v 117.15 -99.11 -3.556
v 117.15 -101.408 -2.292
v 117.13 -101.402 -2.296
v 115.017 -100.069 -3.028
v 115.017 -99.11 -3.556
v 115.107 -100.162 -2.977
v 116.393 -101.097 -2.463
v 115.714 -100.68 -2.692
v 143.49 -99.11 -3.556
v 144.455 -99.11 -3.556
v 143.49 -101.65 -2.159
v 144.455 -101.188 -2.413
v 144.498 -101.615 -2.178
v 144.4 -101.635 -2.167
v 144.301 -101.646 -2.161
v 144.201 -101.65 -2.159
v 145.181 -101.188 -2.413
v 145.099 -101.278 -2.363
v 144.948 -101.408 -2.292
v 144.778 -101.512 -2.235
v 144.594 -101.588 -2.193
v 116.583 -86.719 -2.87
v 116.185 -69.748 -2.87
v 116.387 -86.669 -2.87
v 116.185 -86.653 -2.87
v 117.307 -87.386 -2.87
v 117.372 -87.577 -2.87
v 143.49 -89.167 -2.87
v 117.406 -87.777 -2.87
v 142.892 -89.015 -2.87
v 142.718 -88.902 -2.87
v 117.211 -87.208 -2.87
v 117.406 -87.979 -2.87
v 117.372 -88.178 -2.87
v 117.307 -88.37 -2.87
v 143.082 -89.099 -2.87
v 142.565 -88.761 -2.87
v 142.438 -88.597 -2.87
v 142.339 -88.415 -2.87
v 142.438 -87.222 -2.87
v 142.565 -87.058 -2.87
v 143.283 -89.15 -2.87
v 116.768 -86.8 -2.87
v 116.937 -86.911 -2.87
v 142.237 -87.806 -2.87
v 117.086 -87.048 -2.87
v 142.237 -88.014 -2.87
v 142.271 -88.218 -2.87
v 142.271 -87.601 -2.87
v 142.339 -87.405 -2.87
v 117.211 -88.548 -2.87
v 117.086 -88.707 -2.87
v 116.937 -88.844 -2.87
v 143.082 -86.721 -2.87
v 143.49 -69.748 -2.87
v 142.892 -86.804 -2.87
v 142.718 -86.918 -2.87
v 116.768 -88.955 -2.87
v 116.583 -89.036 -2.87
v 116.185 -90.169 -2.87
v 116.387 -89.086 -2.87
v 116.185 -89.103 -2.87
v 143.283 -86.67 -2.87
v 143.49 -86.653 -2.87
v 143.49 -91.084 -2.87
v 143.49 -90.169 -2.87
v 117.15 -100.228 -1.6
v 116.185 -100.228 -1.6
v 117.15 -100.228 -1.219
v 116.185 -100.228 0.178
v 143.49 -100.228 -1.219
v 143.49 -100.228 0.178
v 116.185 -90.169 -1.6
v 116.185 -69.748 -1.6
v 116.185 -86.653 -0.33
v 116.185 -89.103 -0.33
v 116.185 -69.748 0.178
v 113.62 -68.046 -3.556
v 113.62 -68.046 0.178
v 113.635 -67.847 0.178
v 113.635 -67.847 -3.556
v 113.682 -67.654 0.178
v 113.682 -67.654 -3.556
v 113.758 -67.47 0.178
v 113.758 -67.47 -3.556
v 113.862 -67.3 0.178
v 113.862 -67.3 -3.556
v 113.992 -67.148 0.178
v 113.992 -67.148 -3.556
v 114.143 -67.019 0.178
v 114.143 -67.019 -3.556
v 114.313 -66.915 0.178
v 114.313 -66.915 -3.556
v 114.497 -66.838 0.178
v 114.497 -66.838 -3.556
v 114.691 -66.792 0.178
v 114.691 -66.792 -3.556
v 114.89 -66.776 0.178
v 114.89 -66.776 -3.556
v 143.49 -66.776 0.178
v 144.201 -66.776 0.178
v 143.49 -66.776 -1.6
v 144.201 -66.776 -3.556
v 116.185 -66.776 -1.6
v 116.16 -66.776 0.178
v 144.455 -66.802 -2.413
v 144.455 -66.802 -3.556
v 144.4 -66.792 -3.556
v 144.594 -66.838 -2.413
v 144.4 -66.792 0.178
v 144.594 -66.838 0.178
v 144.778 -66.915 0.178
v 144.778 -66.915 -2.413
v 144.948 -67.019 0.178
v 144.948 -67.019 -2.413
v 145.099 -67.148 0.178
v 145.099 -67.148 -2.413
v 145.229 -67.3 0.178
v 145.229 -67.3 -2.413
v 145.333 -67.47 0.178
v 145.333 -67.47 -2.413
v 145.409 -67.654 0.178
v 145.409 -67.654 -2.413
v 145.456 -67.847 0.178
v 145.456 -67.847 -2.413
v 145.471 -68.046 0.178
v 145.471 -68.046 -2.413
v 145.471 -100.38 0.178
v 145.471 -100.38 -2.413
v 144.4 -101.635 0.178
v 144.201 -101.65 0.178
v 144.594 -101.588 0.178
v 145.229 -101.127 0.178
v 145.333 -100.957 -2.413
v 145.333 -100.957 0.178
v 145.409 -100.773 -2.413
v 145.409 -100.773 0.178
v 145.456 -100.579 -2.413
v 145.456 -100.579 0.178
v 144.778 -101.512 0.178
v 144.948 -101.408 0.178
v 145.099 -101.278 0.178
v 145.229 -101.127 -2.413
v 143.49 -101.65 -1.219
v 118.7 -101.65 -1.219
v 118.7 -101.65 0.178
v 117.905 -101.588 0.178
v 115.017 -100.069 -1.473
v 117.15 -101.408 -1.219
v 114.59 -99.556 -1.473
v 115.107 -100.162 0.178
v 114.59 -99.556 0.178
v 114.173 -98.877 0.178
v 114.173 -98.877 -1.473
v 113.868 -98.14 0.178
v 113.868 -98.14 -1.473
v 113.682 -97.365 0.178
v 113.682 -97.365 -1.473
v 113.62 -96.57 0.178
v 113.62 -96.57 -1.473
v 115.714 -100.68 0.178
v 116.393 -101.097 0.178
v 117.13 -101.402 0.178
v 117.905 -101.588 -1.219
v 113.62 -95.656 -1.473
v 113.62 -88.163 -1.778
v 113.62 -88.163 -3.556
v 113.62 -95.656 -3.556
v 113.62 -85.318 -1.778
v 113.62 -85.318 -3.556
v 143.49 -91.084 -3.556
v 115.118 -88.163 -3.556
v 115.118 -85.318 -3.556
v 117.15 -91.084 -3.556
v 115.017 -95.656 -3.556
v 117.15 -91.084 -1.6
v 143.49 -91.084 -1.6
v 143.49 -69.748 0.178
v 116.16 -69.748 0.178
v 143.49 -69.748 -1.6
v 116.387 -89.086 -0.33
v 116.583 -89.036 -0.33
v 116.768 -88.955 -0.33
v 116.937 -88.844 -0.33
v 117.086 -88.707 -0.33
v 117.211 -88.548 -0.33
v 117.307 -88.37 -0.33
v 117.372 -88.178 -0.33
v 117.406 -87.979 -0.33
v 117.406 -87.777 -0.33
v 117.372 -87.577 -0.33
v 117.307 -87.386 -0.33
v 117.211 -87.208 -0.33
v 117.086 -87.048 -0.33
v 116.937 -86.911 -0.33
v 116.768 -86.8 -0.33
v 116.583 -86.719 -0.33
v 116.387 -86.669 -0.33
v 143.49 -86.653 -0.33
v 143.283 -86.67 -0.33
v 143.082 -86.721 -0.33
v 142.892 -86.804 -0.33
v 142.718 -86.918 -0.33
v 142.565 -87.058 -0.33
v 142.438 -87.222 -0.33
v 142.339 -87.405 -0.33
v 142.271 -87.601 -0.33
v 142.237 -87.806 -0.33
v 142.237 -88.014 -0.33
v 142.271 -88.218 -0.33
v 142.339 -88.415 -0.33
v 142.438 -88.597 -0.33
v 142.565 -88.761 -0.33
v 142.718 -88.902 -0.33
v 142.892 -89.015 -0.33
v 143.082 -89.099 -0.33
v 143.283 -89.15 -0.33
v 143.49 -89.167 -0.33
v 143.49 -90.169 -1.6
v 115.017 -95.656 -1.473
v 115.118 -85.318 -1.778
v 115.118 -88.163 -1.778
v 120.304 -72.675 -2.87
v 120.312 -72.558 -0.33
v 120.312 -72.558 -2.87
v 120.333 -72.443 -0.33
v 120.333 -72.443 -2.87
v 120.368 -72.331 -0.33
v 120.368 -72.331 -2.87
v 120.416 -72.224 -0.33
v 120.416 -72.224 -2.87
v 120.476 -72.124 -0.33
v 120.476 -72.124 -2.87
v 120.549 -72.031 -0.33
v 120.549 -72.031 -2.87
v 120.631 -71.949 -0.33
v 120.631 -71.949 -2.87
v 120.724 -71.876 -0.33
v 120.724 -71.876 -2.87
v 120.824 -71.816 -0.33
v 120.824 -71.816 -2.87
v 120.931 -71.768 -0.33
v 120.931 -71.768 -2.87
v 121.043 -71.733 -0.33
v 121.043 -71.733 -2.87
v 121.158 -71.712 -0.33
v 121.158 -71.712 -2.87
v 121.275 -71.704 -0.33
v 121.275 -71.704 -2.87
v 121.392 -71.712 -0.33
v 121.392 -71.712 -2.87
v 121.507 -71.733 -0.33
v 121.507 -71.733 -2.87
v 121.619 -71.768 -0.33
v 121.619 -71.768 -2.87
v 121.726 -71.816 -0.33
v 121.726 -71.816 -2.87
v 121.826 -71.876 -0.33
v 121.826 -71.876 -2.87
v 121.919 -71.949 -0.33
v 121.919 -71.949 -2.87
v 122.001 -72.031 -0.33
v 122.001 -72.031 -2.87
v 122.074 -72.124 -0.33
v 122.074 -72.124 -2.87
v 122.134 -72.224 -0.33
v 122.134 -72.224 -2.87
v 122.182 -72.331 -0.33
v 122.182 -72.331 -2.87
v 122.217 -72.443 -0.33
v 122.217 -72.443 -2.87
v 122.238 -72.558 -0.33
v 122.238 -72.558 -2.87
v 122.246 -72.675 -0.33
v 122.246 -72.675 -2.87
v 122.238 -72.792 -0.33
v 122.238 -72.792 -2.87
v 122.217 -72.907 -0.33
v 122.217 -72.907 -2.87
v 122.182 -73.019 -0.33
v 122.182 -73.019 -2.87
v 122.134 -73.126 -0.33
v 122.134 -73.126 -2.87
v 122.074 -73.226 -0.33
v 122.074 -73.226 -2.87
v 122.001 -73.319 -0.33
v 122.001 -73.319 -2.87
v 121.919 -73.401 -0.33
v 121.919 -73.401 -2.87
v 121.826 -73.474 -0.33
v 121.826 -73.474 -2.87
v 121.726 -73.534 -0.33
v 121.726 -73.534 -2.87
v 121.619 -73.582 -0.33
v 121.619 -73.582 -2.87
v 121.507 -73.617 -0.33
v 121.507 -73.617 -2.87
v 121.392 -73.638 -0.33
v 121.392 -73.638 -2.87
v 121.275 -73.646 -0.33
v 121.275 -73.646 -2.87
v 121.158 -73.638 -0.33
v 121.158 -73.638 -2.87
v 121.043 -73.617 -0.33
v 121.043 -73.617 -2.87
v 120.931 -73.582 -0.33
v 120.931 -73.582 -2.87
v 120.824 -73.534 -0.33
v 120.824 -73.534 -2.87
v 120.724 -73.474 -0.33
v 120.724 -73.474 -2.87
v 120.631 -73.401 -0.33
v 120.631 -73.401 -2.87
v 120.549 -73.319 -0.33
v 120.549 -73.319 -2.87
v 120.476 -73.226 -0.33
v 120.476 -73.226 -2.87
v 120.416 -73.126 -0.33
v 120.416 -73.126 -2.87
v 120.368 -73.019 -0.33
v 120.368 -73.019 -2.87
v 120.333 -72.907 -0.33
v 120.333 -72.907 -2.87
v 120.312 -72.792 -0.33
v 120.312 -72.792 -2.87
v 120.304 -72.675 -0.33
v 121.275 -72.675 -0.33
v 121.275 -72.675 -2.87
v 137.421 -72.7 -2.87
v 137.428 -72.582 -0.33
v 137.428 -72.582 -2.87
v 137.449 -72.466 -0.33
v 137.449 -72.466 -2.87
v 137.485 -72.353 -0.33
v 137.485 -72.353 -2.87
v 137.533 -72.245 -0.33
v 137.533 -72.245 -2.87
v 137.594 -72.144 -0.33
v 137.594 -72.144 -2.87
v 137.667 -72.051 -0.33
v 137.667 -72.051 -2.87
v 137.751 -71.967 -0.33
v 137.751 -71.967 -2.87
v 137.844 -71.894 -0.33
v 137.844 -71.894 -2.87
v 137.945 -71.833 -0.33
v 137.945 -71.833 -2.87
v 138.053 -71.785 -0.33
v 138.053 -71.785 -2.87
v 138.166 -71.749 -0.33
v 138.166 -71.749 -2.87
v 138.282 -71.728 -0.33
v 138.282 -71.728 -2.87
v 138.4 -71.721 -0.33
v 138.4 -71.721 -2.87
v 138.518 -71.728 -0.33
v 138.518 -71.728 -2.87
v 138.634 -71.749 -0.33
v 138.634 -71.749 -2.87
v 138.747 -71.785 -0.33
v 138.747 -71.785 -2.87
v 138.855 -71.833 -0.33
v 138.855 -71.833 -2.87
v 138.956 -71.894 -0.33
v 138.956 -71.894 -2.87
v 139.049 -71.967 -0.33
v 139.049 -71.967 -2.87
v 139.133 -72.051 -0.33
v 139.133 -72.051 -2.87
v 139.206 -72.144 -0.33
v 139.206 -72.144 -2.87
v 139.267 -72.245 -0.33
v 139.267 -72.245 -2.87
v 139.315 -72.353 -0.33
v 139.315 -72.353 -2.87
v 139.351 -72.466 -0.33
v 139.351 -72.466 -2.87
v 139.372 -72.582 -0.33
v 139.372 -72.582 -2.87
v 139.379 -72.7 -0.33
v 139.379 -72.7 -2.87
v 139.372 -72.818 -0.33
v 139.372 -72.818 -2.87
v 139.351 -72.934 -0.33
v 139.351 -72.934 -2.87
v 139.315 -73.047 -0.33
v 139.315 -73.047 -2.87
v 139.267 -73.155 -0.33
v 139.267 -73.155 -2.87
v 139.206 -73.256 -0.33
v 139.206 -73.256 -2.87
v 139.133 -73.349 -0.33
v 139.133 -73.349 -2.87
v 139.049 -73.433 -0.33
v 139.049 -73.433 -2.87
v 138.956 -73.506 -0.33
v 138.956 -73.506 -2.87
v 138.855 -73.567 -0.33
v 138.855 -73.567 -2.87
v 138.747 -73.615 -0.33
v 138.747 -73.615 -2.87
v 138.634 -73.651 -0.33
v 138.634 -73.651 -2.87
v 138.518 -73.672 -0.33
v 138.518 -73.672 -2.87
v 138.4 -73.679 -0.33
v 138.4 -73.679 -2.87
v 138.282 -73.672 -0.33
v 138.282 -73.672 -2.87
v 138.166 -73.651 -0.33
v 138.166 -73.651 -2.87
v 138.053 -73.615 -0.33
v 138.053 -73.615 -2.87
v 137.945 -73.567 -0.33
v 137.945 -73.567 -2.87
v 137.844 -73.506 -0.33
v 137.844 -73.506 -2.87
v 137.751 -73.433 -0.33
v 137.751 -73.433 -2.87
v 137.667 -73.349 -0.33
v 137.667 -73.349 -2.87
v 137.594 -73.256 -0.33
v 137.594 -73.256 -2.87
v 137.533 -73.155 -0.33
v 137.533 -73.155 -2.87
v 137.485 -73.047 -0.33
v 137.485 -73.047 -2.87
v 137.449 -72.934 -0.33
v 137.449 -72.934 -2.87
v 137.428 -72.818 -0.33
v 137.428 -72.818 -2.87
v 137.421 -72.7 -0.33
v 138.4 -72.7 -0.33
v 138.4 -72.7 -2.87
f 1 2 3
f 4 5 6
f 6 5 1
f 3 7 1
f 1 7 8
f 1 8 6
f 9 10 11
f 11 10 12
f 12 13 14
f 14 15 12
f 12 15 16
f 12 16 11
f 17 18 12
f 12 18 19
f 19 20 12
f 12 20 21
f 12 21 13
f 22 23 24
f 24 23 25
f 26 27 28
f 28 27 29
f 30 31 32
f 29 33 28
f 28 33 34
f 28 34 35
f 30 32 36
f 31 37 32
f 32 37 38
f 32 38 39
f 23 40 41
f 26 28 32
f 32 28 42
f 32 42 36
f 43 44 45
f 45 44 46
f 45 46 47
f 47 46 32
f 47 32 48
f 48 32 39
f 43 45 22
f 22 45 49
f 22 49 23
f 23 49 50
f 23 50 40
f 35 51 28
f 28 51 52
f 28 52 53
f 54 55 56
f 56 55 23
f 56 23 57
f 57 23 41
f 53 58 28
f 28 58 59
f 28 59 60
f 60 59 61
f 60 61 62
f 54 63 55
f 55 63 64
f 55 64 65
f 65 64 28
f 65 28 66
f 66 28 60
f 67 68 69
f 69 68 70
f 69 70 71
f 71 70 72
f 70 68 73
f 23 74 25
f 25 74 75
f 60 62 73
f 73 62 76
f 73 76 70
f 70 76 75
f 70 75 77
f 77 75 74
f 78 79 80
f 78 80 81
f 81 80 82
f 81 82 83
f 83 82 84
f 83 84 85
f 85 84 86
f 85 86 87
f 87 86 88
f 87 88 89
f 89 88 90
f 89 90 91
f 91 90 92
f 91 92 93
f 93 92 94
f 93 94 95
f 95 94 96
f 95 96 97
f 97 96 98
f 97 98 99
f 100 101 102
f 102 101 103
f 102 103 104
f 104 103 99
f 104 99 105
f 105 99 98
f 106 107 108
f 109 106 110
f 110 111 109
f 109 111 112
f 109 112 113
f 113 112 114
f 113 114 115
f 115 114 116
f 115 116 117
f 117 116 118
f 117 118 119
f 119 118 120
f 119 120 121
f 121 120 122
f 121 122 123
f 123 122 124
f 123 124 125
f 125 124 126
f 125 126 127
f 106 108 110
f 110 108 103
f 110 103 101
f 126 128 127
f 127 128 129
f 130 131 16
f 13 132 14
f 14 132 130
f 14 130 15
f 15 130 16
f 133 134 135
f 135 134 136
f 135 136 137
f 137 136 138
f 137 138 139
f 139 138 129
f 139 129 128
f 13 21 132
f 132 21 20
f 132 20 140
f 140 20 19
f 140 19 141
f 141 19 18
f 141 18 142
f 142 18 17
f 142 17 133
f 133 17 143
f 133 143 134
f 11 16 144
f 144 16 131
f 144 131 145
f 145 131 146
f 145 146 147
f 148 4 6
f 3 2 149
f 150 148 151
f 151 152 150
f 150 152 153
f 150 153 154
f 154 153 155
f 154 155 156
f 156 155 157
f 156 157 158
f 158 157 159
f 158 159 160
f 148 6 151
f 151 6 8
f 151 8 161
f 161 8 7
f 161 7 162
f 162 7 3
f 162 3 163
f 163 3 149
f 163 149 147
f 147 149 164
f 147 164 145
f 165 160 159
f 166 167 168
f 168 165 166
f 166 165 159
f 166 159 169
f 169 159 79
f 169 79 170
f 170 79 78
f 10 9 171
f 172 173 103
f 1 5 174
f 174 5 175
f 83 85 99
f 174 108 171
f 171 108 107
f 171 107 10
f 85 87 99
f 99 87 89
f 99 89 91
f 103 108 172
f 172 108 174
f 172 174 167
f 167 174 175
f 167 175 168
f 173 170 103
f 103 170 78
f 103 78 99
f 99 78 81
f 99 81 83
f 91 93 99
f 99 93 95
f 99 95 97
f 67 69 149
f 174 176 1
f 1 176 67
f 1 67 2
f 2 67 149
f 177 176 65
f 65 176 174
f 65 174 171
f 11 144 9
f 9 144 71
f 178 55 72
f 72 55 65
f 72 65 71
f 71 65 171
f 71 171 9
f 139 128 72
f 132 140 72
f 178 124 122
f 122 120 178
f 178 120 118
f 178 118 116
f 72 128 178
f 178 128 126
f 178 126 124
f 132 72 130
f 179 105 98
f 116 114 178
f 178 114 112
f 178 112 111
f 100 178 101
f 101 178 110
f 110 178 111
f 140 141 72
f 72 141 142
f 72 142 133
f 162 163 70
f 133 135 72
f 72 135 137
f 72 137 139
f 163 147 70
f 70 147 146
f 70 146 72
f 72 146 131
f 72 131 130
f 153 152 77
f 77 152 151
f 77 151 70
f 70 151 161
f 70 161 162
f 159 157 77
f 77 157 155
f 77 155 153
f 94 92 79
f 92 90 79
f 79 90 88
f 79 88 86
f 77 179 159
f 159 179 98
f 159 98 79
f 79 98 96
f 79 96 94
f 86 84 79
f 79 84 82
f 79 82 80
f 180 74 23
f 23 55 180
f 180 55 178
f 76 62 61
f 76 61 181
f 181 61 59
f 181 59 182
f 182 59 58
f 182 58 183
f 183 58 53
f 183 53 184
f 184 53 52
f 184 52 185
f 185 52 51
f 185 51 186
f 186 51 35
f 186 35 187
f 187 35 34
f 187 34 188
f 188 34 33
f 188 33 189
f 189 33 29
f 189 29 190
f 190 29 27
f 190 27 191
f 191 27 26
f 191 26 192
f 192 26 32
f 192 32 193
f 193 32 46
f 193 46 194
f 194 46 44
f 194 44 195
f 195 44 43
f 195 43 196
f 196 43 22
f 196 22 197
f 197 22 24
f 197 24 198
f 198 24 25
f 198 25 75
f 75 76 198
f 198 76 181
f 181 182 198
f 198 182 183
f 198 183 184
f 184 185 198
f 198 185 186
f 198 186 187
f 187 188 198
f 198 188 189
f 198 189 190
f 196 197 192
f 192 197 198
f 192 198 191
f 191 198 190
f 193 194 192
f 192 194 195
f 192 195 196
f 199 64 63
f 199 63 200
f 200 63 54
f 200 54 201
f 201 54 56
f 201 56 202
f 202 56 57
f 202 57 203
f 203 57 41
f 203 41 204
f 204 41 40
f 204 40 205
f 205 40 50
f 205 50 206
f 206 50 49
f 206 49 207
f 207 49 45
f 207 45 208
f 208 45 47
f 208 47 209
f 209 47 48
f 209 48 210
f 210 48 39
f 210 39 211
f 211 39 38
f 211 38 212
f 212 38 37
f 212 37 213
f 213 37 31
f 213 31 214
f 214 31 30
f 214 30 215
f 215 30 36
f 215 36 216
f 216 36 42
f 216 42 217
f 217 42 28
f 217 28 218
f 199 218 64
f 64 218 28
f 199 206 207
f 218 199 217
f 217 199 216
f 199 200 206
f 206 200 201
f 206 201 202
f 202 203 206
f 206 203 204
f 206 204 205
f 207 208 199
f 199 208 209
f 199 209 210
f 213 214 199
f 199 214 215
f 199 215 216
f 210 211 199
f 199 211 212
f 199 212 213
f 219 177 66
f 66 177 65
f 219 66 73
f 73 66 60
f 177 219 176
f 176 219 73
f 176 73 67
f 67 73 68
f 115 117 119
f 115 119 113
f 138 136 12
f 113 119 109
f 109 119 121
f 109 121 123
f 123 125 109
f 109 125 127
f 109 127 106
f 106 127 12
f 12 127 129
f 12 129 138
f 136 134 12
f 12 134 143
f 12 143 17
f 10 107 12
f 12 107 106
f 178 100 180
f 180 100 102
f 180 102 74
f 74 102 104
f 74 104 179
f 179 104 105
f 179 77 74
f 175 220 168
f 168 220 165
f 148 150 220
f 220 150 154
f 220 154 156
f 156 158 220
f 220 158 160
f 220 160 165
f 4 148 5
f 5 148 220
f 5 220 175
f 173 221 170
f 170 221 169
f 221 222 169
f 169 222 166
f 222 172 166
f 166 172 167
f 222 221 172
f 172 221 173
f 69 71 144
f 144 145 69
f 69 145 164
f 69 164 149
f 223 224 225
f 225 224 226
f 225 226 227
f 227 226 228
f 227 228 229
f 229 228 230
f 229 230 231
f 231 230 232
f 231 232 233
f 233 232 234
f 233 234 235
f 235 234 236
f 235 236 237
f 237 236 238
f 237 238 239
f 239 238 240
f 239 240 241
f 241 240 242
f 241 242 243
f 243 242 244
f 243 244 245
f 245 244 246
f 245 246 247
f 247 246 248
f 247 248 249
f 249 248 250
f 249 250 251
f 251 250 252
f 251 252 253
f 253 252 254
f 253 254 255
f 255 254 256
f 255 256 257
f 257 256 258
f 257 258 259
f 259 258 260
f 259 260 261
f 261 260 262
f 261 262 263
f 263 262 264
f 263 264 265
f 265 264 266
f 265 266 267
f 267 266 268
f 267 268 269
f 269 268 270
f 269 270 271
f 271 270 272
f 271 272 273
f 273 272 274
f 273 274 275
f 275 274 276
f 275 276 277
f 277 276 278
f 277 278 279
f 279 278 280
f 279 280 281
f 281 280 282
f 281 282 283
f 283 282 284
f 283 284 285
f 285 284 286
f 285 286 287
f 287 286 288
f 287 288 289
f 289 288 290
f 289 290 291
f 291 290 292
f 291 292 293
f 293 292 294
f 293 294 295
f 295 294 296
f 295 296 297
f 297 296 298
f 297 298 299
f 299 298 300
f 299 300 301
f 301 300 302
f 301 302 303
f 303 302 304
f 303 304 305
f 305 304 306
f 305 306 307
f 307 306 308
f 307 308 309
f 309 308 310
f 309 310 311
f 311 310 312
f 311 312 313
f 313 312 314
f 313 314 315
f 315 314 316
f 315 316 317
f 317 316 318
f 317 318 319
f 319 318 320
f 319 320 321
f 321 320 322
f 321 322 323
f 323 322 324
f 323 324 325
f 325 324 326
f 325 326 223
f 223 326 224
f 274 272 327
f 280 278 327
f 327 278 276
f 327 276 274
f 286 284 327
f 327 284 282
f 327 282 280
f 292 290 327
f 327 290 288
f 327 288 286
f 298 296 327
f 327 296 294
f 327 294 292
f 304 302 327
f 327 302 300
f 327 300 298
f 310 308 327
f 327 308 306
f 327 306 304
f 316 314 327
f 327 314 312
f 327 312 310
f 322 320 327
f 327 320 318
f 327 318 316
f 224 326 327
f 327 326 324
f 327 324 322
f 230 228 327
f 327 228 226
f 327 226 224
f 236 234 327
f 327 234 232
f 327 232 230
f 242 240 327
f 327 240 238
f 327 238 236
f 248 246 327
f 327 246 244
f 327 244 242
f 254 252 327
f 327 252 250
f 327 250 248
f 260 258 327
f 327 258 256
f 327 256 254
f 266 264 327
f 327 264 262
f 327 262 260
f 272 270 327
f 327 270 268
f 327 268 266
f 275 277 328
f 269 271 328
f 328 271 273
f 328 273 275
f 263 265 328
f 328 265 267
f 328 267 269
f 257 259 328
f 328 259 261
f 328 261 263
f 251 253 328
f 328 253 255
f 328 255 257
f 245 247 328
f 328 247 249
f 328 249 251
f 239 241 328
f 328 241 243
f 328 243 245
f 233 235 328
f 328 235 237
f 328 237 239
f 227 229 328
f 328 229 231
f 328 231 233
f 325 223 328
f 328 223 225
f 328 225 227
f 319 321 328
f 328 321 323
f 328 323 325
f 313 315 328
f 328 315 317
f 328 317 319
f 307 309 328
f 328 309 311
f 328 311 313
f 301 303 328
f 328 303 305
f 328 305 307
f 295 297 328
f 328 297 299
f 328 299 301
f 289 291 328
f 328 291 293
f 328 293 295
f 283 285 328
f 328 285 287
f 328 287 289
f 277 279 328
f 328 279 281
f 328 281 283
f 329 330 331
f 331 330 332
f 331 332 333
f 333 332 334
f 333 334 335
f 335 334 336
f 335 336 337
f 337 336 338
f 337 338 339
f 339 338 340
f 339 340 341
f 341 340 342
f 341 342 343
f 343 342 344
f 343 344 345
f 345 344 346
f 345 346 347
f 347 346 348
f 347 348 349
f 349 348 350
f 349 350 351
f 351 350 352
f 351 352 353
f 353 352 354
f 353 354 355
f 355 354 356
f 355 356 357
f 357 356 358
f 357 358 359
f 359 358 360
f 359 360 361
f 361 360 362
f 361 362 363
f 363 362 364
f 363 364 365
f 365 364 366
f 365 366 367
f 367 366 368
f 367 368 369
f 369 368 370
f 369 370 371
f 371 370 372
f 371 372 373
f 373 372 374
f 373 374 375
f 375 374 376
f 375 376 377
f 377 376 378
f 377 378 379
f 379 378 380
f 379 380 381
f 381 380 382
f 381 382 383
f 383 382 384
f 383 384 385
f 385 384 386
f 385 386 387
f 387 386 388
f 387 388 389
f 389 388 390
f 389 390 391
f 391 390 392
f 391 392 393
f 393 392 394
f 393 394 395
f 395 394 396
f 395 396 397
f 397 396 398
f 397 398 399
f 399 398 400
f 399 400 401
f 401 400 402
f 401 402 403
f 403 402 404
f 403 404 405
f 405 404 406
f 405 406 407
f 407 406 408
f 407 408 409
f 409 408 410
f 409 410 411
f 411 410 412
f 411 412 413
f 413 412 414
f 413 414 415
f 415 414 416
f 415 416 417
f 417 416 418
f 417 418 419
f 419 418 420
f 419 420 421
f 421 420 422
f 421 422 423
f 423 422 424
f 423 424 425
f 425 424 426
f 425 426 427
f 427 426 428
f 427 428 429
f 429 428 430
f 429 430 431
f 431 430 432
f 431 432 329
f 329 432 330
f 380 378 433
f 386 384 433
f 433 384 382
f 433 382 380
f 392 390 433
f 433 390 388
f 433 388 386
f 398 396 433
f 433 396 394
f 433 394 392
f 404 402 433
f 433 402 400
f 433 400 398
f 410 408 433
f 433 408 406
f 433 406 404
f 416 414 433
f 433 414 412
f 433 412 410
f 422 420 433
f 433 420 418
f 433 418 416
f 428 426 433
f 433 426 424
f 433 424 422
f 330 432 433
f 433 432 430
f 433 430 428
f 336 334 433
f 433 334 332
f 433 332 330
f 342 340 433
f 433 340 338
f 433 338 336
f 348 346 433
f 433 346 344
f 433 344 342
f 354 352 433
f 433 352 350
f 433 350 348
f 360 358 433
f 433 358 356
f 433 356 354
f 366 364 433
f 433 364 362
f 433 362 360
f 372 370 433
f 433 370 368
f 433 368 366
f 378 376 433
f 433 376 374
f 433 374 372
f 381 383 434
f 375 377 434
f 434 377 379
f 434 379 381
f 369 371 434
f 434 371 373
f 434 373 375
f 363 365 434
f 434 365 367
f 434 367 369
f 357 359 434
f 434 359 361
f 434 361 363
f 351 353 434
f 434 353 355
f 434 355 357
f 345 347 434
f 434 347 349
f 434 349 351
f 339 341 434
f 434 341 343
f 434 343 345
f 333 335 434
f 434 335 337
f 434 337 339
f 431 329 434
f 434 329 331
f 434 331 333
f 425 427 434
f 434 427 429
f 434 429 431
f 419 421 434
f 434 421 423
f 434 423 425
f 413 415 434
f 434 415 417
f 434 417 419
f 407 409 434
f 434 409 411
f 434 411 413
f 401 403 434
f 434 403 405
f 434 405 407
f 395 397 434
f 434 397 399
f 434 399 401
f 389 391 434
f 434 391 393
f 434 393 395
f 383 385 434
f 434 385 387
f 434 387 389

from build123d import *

# Parameters (mm, degrees)
SKETCH1_R                  = 0.970535
BOSS_EXTRUDE1_DEPTH        = 1.27
BOSS_EXTRUDE1_DEPTH_BACK   = 1.27
SKETCH1_R_2                = 0.979066
BOSS_EXTRUDE1_2_DEPTH      = 1.27
BOSS_EXTRUDE1_2_DEPTH_BACK = 1.27
SKETCH4_W                  = 26.3398
SKETCH4_H                  = 9.144
BOSS_EXTRUDE2_DEPTH        = 0.6858
SKETCH7_W                  = 27.305
SKETCH7_H                  = 30.48
BOSS_EXTRUDE10_DEPTH       = 3.048
BOSS_EXTRUDE11_DEPTH       = 2.54
BOSS_EXTRUDE12_DEPTH       = 1.27
SKETCH11_W                 = 1.143
SKETCH11_H                 = 34.8742
CUT_EXTRUDE2_DEPTH         = 1.016
CUT_EXTRUDE3_DEPTH         = 2.9718
CUT_EXTRUDE4_DEPTH         = 31.8516
SKETCH14_W                 = 2.0828
SKETCH14_H                 = 5.9944
CUT_EXTRUDE5_DEPTH         = 1.397
SKETCH15_W                 = 1.778
SKETCH15_H                 = 2.8448
CUT_EXTRUDE6_DEPTH         = 1.4986
SKETCH16_W                 = 26.3398
SKETCH16_H                 = 2.3368
CUT_EXTRUDE7_DEPTH         = 3.81


with BuildPart() as part:
    # Sketch1 → Boss-Extrude1 (new body, two sides)
    with BuildSketch(Plane.XY.offset(-1.6)) as boss_extrude1_sk:
        with Locations((121.275, -72.675)):
            Circle(SKETCH1_R)
    extrude(amount=BOSS_EXTRUDE1_DEPTH)
    extrude(boss_extrude1_sk.sketch, amount=-BOSS_EXTRUDE1_DEPTH_BACK)


with BuildPart() as body_2:
    # Sketch1 → Boss-Extrude1 2 (new body, two sides)
    with BuildSketch(Plane.XY.offset(-1.6)) as boss_extrude1_2_sk:
        with Locations((138.4, -72.7)):
            Circle(SKETCH1_R_2)
    extrude(amount=BOSS_EXTRUDE1_2_DEPTH)
    extrude(boss_extrude1_2_sk.sketch, amount=-BOSS_EXTRUDE1_2_DEPTH_BACK)


with BuildPart() as body_3:
    # Sketch4 → Boss-Extrude2 (new body)
    with BuildSketch(Plane.XY.offset(-2.87)):
        with BuildLine():
            Line((113.619599, -68.046099), (113.619599, -96.570299))
            ThreePointArc((113.619599, -96.570299), (115.107496552, -100.162401448), (118.699599, -101.650299))
            Line((118.699599, -101.650299), (144.201199, -101.650299))
            ThreePointArc((144.201199, -101.650299), (145.099224612, -101.278324612), (145.471199, -100.380299))
            Line((145.471199, -100.380299), (145.471199, -68.046099))
            ThreePointArc((145.471199, -68.046099), (145.099224612, -67.148073388), (144.201199, -66.776099))
            Line((144.201199, -66.776099), (114.889599, -66.776099))
            ThreePointArc((114.889599, -66.776099), (113.991573388, -67.148073388), (113.619599, -68.046099))
        make_face()
        with Locations((130.320099, -95.655899)):
            Rectangle(SKETCH4_W, SKETCH4_H, mode=Mode.SUBTRACT)
    extrude(amount=-BOSS_EXTRUDE2_DEPTH)

    # Sketch7 → Boss-Extrude10 (add)
    with BuildSketch(Plane.XY.offset(-2.87)):
        with BuildLine():
            Line((113.619599, -68.046099), (113.619599, -96.570299))
            ThreePointArc((113.619599, -96.570299), (115.107496552, -100.162401448), (118.699599, -101.650299))
            Line((118.699599, -101.650299), (144.201199, -101.650299))
            ThreePointArc((144.201199, -101.650299), (145.099224612, -101.278324612), (145.471199, -100.380299))
            Line((145.471199, -100.380299), (145.471199, -68.046099))
            ThreePointArc((145.471199, -68.046099), (145.099224612, -67.148073388), (144.201199, -66.776099))
            Line((144.201199, -66.776099), (114.889599, -66.776099))
            ThreePointArc((114.889599, -66.776099), (113.991573388, -67.148073388), (113.619599, -68.046099))
        make_face()
        with Locations((129.837499, -84.987899)):
            Rectangle(SKETCH7_W, SKETCH7_H, mode=Mode.SUBTRACT)
    extrude(amount=BOSS_EXTRUDE10_DEPTH)

    # Sketch8 → Boss-Extrude11 (add)
    with BuildSketch(Plane.XY.offset(-2.87)):
        with BuildLine():
            Line((116.184999, -86.652771972), (116.184999, -89.102699))
            ThreePointArc((116.184999, -89.102699), (117.409962514, -87.877735486), (116.184999, -86.652771972))
        make_face()
        with BuildLine():
            ThreePointArc((143.489913, -89.1669), (142.232854553, -87.909830419), (143.489924134, -86.652771972))
            Line((143.489924134, -86.652771972), (143.489913, -89.1669))
        make_face()
    extrude(amount=BOSS_EXTRUDE11_DEPTH)

    # Sketch10 → Boss-Extrude12 (add)
    with BuildSketch(Plane.XY.offset(-2.87)):
        Polygon((116.184519548, -90.169499), (143.489920795, -90.169499), (143.489927905, -91.083899), (117.150199, -91.083899), (117.150199, -100.227899), (116.184999, -100.227899), align=None)
    extrude(amount=BOSS_EXTRUDE12_DEPTH)

    # Sketch11 → Cut-Extrude2 (cut)
    with BuildSketch(Plane(origin=(145.471199, 0, 0), x_dir=(0, 0, -1), z_dir=(1, 0, 0))):
        with Locations((2.9843, -84.213199)):
            Rectangle(SKETCH11_W, SKETCH11_H)
    extrude(amount=-CUT_EXTRUDE2_DEPTH, mode=Mode.SUBTRACT)

    # Sketch12 → Cut-Extrude3 (cut)
    with BuildSketch(Plane.XZ.offset(69.747899)):
        Polygon((143.489920795, -1.6), (116.184999, -1.6), (116.159599, 0.178), (143.489920795, 0.178), align=None)
    extrude(amount=-CUT_EXTRUDE3_DEPTH, mode=Mode.SUBTRACT)

    # Sketch13 → Cut-Extrude4 (cut)
    with BuildSketch(Plane(origin=(145.471199, 0, 0), x_dir=(0, 0, -1), z_dir=(1, 0, 0))):
        Polygon((3.5558, -101.650299), (2.1588, -101.650299), (3.5558, -99.110299), align=None)
    extrude(amount=-CUT_EXTRUDE4_DEPTH, mode=Mode.SUBTRACT)

    # Sketch14 → Cut-Extrude5 (cut)
    with BuildSketch(Plane.ZY.offset(-113.619599)):
        with Locations((-2.5144, -98.653099)):
            Rectangle(SKETCH14_W, SKETCH14_H)
    extrude(amount=-CUT_EXTRUDE5_DEPTH, mode=Mode.SUBTRACT)

    # Sketch15 → Cut-Extrude6 (cut)
    with BuildSketch(Plane.ZY.offset(-113.619599)):
        with Locations((-2.6668, -86.740499)):
            Rectangle(SKETCH15_W, SKETCH15_H)
    extrude(amount=-CUT_EXTRUDE6_DEPTH, mode=Mode.SUBTRACT)

    # Sketch16 → Cut-Extrude7 (cut)
    with BuildSketch(Plane.XZ.offset(101.650299)):
        with Locations((130.320099, -2.3874)):
            Rectangle(SKETCH16_W, SKETCH16_H)
    extrude(amount=-CUT_EXTRUDE7_DEPTH, mode=Mode.SUBTRACT)


solid = Compound([part.part, body_2.part, body_3.part])
